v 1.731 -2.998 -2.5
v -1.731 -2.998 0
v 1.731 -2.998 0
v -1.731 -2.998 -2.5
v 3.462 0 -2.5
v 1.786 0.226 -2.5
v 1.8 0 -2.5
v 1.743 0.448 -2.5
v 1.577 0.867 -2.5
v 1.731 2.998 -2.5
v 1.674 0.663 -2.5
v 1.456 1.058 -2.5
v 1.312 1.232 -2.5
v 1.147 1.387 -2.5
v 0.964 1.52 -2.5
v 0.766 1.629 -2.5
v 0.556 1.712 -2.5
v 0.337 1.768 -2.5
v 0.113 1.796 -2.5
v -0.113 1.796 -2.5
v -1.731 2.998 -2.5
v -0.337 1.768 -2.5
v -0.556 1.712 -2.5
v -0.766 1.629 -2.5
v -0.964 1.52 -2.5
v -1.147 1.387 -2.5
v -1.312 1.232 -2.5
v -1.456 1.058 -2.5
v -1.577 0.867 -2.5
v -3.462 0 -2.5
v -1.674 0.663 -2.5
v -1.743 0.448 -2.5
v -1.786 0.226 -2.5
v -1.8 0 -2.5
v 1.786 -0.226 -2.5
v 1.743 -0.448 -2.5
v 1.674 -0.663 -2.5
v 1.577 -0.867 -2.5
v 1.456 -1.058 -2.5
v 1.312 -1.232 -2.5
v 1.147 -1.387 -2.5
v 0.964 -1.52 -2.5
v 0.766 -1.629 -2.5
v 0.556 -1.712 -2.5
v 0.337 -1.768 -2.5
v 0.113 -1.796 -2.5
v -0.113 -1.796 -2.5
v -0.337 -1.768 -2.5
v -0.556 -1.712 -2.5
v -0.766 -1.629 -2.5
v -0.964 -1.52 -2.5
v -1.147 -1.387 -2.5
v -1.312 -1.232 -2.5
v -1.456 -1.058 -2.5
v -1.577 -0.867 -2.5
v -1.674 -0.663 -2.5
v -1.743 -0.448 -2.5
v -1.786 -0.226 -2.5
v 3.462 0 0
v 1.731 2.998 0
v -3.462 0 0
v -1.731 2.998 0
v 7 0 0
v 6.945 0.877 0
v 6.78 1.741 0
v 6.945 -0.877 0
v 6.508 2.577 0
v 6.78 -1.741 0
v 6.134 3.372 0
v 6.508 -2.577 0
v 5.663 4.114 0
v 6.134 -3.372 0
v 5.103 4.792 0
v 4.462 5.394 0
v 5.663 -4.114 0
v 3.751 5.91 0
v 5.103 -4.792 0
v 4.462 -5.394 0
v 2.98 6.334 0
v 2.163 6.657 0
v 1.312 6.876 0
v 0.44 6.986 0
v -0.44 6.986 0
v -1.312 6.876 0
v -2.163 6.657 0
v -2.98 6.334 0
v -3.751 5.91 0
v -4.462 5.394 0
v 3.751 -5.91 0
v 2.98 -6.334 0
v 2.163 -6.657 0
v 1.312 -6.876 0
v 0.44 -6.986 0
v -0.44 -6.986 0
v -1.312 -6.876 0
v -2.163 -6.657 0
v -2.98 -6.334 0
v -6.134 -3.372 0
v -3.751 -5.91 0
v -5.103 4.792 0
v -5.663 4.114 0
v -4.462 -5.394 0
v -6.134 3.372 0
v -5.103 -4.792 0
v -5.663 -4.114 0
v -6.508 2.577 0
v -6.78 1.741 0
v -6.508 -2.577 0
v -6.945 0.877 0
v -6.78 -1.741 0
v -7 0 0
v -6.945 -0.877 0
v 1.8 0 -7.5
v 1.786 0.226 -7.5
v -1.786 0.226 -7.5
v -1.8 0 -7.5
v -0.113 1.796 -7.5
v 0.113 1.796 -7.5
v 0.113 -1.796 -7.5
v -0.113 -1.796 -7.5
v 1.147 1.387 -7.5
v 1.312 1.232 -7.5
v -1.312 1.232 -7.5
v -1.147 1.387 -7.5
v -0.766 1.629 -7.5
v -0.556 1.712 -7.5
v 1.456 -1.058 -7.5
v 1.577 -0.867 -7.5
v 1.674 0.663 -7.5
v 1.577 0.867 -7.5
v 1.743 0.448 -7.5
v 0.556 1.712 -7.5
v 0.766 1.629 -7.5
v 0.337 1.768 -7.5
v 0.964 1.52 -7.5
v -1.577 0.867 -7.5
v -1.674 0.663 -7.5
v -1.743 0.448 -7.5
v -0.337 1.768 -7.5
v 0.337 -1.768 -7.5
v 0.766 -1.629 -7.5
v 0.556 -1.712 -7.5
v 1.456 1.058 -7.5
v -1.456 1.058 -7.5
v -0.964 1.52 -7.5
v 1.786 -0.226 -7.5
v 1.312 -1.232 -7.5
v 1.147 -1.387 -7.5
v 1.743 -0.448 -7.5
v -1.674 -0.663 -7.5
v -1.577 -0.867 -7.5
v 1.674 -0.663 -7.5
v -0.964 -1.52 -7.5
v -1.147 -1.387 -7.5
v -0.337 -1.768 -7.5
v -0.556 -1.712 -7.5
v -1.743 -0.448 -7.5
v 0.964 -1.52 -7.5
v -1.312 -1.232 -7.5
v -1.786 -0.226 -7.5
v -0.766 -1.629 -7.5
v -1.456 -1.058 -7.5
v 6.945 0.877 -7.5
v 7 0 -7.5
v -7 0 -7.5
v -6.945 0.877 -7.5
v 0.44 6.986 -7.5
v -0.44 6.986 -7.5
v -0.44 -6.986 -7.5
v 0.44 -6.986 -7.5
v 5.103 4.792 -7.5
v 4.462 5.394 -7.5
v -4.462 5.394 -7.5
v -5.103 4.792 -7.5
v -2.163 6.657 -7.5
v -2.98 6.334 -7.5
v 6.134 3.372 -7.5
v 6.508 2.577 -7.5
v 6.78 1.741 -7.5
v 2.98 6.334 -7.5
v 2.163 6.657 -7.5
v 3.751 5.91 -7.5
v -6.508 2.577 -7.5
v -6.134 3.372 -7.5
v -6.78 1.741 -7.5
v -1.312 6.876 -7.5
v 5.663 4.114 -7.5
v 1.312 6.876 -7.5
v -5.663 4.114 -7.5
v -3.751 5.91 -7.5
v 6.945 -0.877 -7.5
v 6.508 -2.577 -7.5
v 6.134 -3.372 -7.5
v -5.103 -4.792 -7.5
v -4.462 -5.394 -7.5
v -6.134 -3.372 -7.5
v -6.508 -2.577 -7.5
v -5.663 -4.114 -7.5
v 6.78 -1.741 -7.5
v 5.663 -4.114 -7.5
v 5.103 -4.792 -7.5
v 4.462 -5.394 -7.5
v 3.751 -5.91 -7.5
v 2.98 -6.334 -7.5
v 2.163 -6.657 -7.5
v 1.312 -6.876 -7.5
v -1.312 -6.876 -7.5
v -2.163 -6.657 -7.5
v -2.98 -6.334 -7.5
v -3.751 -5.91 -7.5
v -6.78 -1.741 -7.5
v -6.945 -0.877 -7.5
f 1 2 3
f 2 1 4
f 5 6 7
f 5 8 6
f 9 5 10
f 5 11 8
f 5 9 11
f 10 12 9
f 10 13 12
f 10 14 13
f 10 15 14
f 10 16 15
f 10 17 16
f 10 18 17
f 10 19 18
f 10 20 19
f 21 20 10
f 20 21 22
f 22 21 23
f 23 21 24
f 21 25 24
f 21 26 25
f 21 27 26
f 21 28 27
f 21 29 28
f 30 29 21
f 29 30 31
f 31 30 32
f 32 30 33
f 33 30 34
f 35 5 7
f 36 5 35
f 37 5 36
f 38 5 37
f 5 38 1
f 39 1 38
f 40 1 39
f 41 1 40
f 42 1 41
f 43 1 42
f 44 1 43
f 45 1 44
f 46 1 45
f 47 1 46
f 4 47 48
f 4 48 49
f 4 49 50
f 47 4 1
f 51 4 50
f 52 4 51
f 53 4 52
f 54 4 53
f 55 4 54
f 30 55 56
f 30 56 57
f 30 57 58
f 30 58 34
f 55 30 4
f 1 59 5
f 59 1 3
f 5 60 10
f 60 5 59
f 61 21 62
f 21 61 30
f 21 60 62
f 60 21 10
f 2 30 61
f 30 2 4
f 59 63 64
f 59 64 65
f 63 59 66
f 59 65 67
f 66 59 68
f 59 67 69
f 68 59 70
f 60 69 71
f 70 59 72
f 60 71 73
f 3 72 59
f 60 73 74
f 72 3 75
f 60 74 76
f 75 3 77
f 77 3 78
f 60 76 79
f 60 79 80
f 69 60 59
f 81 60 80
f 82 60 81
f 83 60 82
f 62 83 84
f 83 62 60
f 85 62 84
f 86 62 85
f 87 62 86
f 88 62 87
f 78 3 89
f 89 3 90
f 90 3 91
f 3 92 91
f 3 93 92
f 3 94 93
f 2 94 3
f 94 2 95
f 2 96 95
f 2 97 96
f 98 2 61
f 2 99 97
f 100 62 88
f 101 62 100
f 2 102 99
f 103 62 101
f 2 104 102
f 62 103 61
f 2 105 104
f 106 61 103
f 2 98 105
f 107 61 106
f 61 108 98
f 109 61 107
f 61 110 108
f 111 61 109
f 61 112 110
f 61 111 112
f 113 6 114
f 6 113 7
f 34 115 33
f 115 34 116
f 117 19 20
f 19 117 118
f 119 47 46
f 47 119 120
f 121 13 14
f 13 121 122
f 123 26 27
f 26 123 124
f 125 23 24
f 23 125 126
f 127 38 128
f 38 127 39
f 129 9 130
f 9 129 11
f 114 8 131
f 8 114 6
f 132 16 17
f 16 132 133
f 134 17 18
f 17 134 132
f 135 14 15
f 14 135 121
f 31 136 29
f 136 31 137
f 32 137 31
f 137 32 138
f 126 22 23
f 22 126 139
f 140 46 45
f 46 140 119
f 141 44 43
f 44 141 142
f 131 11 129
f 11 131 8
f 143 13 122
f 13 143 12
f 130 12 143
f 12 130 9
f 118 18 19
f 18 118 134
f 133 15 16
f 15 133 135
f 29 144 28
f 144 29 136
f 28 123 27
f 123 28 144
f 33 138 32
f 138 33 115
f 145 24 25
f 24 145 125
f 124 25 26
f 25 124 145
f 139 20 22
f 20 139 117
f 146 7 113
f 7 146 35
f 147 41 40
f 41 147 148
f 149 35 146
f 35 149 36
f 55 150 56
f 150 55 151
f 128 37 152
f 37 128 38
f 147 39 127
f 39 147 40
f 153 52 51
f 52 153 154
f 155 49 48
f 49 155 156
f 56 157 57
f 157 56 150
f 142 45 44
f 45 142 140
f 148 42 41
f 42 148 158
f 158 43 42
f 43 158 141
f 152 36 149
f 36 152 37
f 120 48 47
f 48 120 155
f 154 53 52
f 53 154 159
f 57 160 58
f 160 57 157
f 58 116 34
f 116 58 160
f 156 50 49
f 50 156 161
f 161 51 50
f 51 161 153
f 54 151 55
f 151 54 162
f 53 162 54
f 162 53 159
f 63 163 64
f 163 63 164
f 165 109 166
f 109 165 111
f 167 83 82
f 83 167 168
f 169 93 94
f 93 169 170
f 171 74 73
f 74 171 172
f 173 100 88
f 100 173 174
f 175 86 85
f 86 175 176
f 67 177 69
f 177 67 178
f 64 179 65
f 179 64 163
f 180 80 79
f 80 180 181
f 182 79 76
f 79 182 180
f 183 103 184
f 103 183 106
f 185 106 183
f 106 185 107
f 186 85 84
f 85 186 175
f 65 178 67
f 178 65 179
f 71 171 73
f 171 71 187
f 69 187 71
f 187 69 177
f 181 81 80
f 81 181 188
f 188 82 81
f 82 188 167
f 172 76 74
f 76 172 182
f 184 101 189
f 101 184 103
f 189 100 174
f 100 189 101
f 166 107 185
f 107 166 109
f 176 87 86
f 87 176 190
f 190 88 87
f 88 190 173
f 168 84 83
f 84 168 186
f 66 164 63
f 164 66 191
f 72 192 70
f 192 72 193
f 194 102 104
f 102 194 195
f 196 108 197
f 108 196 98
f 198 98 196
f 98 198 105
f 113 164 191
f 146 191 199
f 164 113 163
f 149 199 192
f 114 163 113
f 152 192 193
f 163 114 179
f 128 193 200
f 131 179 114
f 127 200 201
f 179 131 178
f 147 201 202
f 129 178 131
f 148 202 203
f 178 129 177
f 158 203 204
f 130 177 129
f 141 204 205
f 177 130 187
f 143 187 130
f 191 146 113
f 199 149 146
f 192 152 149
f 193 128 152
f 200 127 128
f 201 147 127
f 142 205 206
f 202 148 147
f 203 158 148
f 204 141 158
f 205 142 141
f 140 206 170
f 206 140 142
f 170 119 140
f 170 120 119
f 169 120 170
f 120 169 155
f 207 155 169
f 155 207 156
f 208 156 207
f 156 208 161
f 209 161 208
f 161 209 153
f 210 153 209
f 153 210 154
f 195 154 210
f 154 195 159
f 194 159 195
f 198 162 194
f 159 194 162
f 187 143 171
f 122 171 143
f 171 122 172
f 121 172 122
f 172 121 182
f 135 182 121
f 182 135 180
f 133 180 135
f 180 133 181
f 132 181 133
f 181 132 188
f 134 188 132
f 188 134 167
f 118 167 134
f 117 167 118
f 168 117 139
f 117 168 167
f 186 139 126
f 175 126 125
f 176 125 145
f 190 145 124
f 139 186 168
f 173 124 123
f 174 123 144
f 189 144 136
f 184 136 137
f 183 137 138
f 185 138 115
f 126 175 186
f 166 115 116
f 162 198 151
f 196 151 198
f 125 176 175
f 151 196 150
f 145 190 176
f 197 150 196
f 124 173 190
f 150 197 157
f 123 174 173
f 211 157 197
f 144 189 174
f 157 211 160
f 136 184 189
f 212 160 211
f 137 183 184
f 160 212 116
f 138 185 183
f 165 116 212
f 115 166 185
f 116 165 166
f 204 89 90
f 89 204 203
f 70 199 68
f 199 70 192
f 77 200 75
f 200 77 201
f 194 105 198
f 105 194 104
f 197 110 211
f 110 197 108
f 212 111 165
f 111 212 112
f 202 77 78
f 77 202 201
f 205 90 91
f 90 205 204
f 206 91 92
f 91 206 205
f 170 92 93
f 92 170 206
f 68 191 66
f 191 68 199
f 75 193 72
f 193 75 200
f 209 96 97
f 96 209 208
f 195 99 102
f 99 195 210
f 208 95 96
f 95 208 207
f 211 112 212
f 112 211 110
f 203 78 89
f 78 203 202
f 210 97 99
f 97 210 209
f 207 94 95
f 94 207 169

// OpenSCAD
$fn = 50;


difference() {
	union() {
		translate(v = [0, 0, -7.5000000000]) {
			cylinder(h = 7.5000000000, r = 7.0000000000);
		}
	}
	union() {
		translate(v = [0, 0, 0]) {
			rotate(a = [0, 0, 0]) {
				difference() {
					union() {
						translate(v = [0, 0, -2.5000000000]) {
							linear_extrude(height = 2.5000000000) {
								polygon(points = [[3.4620000000, 0.0000000000], [1.7310000000, 2.9981799479], [-1.7310000000, 2.9981799479], [-3.4620000000, 0.0000000000], [-1.7310000000, -2.9981799479], [1.7310000000, -2.9981799479]]);
							}
						}
					}
					union();
				}
			}
		}
		#translate(v = [0, 0, -100.0000000000]) {
			cylinder(h = 200, r = 1.8000000000);
		}
	}
}
